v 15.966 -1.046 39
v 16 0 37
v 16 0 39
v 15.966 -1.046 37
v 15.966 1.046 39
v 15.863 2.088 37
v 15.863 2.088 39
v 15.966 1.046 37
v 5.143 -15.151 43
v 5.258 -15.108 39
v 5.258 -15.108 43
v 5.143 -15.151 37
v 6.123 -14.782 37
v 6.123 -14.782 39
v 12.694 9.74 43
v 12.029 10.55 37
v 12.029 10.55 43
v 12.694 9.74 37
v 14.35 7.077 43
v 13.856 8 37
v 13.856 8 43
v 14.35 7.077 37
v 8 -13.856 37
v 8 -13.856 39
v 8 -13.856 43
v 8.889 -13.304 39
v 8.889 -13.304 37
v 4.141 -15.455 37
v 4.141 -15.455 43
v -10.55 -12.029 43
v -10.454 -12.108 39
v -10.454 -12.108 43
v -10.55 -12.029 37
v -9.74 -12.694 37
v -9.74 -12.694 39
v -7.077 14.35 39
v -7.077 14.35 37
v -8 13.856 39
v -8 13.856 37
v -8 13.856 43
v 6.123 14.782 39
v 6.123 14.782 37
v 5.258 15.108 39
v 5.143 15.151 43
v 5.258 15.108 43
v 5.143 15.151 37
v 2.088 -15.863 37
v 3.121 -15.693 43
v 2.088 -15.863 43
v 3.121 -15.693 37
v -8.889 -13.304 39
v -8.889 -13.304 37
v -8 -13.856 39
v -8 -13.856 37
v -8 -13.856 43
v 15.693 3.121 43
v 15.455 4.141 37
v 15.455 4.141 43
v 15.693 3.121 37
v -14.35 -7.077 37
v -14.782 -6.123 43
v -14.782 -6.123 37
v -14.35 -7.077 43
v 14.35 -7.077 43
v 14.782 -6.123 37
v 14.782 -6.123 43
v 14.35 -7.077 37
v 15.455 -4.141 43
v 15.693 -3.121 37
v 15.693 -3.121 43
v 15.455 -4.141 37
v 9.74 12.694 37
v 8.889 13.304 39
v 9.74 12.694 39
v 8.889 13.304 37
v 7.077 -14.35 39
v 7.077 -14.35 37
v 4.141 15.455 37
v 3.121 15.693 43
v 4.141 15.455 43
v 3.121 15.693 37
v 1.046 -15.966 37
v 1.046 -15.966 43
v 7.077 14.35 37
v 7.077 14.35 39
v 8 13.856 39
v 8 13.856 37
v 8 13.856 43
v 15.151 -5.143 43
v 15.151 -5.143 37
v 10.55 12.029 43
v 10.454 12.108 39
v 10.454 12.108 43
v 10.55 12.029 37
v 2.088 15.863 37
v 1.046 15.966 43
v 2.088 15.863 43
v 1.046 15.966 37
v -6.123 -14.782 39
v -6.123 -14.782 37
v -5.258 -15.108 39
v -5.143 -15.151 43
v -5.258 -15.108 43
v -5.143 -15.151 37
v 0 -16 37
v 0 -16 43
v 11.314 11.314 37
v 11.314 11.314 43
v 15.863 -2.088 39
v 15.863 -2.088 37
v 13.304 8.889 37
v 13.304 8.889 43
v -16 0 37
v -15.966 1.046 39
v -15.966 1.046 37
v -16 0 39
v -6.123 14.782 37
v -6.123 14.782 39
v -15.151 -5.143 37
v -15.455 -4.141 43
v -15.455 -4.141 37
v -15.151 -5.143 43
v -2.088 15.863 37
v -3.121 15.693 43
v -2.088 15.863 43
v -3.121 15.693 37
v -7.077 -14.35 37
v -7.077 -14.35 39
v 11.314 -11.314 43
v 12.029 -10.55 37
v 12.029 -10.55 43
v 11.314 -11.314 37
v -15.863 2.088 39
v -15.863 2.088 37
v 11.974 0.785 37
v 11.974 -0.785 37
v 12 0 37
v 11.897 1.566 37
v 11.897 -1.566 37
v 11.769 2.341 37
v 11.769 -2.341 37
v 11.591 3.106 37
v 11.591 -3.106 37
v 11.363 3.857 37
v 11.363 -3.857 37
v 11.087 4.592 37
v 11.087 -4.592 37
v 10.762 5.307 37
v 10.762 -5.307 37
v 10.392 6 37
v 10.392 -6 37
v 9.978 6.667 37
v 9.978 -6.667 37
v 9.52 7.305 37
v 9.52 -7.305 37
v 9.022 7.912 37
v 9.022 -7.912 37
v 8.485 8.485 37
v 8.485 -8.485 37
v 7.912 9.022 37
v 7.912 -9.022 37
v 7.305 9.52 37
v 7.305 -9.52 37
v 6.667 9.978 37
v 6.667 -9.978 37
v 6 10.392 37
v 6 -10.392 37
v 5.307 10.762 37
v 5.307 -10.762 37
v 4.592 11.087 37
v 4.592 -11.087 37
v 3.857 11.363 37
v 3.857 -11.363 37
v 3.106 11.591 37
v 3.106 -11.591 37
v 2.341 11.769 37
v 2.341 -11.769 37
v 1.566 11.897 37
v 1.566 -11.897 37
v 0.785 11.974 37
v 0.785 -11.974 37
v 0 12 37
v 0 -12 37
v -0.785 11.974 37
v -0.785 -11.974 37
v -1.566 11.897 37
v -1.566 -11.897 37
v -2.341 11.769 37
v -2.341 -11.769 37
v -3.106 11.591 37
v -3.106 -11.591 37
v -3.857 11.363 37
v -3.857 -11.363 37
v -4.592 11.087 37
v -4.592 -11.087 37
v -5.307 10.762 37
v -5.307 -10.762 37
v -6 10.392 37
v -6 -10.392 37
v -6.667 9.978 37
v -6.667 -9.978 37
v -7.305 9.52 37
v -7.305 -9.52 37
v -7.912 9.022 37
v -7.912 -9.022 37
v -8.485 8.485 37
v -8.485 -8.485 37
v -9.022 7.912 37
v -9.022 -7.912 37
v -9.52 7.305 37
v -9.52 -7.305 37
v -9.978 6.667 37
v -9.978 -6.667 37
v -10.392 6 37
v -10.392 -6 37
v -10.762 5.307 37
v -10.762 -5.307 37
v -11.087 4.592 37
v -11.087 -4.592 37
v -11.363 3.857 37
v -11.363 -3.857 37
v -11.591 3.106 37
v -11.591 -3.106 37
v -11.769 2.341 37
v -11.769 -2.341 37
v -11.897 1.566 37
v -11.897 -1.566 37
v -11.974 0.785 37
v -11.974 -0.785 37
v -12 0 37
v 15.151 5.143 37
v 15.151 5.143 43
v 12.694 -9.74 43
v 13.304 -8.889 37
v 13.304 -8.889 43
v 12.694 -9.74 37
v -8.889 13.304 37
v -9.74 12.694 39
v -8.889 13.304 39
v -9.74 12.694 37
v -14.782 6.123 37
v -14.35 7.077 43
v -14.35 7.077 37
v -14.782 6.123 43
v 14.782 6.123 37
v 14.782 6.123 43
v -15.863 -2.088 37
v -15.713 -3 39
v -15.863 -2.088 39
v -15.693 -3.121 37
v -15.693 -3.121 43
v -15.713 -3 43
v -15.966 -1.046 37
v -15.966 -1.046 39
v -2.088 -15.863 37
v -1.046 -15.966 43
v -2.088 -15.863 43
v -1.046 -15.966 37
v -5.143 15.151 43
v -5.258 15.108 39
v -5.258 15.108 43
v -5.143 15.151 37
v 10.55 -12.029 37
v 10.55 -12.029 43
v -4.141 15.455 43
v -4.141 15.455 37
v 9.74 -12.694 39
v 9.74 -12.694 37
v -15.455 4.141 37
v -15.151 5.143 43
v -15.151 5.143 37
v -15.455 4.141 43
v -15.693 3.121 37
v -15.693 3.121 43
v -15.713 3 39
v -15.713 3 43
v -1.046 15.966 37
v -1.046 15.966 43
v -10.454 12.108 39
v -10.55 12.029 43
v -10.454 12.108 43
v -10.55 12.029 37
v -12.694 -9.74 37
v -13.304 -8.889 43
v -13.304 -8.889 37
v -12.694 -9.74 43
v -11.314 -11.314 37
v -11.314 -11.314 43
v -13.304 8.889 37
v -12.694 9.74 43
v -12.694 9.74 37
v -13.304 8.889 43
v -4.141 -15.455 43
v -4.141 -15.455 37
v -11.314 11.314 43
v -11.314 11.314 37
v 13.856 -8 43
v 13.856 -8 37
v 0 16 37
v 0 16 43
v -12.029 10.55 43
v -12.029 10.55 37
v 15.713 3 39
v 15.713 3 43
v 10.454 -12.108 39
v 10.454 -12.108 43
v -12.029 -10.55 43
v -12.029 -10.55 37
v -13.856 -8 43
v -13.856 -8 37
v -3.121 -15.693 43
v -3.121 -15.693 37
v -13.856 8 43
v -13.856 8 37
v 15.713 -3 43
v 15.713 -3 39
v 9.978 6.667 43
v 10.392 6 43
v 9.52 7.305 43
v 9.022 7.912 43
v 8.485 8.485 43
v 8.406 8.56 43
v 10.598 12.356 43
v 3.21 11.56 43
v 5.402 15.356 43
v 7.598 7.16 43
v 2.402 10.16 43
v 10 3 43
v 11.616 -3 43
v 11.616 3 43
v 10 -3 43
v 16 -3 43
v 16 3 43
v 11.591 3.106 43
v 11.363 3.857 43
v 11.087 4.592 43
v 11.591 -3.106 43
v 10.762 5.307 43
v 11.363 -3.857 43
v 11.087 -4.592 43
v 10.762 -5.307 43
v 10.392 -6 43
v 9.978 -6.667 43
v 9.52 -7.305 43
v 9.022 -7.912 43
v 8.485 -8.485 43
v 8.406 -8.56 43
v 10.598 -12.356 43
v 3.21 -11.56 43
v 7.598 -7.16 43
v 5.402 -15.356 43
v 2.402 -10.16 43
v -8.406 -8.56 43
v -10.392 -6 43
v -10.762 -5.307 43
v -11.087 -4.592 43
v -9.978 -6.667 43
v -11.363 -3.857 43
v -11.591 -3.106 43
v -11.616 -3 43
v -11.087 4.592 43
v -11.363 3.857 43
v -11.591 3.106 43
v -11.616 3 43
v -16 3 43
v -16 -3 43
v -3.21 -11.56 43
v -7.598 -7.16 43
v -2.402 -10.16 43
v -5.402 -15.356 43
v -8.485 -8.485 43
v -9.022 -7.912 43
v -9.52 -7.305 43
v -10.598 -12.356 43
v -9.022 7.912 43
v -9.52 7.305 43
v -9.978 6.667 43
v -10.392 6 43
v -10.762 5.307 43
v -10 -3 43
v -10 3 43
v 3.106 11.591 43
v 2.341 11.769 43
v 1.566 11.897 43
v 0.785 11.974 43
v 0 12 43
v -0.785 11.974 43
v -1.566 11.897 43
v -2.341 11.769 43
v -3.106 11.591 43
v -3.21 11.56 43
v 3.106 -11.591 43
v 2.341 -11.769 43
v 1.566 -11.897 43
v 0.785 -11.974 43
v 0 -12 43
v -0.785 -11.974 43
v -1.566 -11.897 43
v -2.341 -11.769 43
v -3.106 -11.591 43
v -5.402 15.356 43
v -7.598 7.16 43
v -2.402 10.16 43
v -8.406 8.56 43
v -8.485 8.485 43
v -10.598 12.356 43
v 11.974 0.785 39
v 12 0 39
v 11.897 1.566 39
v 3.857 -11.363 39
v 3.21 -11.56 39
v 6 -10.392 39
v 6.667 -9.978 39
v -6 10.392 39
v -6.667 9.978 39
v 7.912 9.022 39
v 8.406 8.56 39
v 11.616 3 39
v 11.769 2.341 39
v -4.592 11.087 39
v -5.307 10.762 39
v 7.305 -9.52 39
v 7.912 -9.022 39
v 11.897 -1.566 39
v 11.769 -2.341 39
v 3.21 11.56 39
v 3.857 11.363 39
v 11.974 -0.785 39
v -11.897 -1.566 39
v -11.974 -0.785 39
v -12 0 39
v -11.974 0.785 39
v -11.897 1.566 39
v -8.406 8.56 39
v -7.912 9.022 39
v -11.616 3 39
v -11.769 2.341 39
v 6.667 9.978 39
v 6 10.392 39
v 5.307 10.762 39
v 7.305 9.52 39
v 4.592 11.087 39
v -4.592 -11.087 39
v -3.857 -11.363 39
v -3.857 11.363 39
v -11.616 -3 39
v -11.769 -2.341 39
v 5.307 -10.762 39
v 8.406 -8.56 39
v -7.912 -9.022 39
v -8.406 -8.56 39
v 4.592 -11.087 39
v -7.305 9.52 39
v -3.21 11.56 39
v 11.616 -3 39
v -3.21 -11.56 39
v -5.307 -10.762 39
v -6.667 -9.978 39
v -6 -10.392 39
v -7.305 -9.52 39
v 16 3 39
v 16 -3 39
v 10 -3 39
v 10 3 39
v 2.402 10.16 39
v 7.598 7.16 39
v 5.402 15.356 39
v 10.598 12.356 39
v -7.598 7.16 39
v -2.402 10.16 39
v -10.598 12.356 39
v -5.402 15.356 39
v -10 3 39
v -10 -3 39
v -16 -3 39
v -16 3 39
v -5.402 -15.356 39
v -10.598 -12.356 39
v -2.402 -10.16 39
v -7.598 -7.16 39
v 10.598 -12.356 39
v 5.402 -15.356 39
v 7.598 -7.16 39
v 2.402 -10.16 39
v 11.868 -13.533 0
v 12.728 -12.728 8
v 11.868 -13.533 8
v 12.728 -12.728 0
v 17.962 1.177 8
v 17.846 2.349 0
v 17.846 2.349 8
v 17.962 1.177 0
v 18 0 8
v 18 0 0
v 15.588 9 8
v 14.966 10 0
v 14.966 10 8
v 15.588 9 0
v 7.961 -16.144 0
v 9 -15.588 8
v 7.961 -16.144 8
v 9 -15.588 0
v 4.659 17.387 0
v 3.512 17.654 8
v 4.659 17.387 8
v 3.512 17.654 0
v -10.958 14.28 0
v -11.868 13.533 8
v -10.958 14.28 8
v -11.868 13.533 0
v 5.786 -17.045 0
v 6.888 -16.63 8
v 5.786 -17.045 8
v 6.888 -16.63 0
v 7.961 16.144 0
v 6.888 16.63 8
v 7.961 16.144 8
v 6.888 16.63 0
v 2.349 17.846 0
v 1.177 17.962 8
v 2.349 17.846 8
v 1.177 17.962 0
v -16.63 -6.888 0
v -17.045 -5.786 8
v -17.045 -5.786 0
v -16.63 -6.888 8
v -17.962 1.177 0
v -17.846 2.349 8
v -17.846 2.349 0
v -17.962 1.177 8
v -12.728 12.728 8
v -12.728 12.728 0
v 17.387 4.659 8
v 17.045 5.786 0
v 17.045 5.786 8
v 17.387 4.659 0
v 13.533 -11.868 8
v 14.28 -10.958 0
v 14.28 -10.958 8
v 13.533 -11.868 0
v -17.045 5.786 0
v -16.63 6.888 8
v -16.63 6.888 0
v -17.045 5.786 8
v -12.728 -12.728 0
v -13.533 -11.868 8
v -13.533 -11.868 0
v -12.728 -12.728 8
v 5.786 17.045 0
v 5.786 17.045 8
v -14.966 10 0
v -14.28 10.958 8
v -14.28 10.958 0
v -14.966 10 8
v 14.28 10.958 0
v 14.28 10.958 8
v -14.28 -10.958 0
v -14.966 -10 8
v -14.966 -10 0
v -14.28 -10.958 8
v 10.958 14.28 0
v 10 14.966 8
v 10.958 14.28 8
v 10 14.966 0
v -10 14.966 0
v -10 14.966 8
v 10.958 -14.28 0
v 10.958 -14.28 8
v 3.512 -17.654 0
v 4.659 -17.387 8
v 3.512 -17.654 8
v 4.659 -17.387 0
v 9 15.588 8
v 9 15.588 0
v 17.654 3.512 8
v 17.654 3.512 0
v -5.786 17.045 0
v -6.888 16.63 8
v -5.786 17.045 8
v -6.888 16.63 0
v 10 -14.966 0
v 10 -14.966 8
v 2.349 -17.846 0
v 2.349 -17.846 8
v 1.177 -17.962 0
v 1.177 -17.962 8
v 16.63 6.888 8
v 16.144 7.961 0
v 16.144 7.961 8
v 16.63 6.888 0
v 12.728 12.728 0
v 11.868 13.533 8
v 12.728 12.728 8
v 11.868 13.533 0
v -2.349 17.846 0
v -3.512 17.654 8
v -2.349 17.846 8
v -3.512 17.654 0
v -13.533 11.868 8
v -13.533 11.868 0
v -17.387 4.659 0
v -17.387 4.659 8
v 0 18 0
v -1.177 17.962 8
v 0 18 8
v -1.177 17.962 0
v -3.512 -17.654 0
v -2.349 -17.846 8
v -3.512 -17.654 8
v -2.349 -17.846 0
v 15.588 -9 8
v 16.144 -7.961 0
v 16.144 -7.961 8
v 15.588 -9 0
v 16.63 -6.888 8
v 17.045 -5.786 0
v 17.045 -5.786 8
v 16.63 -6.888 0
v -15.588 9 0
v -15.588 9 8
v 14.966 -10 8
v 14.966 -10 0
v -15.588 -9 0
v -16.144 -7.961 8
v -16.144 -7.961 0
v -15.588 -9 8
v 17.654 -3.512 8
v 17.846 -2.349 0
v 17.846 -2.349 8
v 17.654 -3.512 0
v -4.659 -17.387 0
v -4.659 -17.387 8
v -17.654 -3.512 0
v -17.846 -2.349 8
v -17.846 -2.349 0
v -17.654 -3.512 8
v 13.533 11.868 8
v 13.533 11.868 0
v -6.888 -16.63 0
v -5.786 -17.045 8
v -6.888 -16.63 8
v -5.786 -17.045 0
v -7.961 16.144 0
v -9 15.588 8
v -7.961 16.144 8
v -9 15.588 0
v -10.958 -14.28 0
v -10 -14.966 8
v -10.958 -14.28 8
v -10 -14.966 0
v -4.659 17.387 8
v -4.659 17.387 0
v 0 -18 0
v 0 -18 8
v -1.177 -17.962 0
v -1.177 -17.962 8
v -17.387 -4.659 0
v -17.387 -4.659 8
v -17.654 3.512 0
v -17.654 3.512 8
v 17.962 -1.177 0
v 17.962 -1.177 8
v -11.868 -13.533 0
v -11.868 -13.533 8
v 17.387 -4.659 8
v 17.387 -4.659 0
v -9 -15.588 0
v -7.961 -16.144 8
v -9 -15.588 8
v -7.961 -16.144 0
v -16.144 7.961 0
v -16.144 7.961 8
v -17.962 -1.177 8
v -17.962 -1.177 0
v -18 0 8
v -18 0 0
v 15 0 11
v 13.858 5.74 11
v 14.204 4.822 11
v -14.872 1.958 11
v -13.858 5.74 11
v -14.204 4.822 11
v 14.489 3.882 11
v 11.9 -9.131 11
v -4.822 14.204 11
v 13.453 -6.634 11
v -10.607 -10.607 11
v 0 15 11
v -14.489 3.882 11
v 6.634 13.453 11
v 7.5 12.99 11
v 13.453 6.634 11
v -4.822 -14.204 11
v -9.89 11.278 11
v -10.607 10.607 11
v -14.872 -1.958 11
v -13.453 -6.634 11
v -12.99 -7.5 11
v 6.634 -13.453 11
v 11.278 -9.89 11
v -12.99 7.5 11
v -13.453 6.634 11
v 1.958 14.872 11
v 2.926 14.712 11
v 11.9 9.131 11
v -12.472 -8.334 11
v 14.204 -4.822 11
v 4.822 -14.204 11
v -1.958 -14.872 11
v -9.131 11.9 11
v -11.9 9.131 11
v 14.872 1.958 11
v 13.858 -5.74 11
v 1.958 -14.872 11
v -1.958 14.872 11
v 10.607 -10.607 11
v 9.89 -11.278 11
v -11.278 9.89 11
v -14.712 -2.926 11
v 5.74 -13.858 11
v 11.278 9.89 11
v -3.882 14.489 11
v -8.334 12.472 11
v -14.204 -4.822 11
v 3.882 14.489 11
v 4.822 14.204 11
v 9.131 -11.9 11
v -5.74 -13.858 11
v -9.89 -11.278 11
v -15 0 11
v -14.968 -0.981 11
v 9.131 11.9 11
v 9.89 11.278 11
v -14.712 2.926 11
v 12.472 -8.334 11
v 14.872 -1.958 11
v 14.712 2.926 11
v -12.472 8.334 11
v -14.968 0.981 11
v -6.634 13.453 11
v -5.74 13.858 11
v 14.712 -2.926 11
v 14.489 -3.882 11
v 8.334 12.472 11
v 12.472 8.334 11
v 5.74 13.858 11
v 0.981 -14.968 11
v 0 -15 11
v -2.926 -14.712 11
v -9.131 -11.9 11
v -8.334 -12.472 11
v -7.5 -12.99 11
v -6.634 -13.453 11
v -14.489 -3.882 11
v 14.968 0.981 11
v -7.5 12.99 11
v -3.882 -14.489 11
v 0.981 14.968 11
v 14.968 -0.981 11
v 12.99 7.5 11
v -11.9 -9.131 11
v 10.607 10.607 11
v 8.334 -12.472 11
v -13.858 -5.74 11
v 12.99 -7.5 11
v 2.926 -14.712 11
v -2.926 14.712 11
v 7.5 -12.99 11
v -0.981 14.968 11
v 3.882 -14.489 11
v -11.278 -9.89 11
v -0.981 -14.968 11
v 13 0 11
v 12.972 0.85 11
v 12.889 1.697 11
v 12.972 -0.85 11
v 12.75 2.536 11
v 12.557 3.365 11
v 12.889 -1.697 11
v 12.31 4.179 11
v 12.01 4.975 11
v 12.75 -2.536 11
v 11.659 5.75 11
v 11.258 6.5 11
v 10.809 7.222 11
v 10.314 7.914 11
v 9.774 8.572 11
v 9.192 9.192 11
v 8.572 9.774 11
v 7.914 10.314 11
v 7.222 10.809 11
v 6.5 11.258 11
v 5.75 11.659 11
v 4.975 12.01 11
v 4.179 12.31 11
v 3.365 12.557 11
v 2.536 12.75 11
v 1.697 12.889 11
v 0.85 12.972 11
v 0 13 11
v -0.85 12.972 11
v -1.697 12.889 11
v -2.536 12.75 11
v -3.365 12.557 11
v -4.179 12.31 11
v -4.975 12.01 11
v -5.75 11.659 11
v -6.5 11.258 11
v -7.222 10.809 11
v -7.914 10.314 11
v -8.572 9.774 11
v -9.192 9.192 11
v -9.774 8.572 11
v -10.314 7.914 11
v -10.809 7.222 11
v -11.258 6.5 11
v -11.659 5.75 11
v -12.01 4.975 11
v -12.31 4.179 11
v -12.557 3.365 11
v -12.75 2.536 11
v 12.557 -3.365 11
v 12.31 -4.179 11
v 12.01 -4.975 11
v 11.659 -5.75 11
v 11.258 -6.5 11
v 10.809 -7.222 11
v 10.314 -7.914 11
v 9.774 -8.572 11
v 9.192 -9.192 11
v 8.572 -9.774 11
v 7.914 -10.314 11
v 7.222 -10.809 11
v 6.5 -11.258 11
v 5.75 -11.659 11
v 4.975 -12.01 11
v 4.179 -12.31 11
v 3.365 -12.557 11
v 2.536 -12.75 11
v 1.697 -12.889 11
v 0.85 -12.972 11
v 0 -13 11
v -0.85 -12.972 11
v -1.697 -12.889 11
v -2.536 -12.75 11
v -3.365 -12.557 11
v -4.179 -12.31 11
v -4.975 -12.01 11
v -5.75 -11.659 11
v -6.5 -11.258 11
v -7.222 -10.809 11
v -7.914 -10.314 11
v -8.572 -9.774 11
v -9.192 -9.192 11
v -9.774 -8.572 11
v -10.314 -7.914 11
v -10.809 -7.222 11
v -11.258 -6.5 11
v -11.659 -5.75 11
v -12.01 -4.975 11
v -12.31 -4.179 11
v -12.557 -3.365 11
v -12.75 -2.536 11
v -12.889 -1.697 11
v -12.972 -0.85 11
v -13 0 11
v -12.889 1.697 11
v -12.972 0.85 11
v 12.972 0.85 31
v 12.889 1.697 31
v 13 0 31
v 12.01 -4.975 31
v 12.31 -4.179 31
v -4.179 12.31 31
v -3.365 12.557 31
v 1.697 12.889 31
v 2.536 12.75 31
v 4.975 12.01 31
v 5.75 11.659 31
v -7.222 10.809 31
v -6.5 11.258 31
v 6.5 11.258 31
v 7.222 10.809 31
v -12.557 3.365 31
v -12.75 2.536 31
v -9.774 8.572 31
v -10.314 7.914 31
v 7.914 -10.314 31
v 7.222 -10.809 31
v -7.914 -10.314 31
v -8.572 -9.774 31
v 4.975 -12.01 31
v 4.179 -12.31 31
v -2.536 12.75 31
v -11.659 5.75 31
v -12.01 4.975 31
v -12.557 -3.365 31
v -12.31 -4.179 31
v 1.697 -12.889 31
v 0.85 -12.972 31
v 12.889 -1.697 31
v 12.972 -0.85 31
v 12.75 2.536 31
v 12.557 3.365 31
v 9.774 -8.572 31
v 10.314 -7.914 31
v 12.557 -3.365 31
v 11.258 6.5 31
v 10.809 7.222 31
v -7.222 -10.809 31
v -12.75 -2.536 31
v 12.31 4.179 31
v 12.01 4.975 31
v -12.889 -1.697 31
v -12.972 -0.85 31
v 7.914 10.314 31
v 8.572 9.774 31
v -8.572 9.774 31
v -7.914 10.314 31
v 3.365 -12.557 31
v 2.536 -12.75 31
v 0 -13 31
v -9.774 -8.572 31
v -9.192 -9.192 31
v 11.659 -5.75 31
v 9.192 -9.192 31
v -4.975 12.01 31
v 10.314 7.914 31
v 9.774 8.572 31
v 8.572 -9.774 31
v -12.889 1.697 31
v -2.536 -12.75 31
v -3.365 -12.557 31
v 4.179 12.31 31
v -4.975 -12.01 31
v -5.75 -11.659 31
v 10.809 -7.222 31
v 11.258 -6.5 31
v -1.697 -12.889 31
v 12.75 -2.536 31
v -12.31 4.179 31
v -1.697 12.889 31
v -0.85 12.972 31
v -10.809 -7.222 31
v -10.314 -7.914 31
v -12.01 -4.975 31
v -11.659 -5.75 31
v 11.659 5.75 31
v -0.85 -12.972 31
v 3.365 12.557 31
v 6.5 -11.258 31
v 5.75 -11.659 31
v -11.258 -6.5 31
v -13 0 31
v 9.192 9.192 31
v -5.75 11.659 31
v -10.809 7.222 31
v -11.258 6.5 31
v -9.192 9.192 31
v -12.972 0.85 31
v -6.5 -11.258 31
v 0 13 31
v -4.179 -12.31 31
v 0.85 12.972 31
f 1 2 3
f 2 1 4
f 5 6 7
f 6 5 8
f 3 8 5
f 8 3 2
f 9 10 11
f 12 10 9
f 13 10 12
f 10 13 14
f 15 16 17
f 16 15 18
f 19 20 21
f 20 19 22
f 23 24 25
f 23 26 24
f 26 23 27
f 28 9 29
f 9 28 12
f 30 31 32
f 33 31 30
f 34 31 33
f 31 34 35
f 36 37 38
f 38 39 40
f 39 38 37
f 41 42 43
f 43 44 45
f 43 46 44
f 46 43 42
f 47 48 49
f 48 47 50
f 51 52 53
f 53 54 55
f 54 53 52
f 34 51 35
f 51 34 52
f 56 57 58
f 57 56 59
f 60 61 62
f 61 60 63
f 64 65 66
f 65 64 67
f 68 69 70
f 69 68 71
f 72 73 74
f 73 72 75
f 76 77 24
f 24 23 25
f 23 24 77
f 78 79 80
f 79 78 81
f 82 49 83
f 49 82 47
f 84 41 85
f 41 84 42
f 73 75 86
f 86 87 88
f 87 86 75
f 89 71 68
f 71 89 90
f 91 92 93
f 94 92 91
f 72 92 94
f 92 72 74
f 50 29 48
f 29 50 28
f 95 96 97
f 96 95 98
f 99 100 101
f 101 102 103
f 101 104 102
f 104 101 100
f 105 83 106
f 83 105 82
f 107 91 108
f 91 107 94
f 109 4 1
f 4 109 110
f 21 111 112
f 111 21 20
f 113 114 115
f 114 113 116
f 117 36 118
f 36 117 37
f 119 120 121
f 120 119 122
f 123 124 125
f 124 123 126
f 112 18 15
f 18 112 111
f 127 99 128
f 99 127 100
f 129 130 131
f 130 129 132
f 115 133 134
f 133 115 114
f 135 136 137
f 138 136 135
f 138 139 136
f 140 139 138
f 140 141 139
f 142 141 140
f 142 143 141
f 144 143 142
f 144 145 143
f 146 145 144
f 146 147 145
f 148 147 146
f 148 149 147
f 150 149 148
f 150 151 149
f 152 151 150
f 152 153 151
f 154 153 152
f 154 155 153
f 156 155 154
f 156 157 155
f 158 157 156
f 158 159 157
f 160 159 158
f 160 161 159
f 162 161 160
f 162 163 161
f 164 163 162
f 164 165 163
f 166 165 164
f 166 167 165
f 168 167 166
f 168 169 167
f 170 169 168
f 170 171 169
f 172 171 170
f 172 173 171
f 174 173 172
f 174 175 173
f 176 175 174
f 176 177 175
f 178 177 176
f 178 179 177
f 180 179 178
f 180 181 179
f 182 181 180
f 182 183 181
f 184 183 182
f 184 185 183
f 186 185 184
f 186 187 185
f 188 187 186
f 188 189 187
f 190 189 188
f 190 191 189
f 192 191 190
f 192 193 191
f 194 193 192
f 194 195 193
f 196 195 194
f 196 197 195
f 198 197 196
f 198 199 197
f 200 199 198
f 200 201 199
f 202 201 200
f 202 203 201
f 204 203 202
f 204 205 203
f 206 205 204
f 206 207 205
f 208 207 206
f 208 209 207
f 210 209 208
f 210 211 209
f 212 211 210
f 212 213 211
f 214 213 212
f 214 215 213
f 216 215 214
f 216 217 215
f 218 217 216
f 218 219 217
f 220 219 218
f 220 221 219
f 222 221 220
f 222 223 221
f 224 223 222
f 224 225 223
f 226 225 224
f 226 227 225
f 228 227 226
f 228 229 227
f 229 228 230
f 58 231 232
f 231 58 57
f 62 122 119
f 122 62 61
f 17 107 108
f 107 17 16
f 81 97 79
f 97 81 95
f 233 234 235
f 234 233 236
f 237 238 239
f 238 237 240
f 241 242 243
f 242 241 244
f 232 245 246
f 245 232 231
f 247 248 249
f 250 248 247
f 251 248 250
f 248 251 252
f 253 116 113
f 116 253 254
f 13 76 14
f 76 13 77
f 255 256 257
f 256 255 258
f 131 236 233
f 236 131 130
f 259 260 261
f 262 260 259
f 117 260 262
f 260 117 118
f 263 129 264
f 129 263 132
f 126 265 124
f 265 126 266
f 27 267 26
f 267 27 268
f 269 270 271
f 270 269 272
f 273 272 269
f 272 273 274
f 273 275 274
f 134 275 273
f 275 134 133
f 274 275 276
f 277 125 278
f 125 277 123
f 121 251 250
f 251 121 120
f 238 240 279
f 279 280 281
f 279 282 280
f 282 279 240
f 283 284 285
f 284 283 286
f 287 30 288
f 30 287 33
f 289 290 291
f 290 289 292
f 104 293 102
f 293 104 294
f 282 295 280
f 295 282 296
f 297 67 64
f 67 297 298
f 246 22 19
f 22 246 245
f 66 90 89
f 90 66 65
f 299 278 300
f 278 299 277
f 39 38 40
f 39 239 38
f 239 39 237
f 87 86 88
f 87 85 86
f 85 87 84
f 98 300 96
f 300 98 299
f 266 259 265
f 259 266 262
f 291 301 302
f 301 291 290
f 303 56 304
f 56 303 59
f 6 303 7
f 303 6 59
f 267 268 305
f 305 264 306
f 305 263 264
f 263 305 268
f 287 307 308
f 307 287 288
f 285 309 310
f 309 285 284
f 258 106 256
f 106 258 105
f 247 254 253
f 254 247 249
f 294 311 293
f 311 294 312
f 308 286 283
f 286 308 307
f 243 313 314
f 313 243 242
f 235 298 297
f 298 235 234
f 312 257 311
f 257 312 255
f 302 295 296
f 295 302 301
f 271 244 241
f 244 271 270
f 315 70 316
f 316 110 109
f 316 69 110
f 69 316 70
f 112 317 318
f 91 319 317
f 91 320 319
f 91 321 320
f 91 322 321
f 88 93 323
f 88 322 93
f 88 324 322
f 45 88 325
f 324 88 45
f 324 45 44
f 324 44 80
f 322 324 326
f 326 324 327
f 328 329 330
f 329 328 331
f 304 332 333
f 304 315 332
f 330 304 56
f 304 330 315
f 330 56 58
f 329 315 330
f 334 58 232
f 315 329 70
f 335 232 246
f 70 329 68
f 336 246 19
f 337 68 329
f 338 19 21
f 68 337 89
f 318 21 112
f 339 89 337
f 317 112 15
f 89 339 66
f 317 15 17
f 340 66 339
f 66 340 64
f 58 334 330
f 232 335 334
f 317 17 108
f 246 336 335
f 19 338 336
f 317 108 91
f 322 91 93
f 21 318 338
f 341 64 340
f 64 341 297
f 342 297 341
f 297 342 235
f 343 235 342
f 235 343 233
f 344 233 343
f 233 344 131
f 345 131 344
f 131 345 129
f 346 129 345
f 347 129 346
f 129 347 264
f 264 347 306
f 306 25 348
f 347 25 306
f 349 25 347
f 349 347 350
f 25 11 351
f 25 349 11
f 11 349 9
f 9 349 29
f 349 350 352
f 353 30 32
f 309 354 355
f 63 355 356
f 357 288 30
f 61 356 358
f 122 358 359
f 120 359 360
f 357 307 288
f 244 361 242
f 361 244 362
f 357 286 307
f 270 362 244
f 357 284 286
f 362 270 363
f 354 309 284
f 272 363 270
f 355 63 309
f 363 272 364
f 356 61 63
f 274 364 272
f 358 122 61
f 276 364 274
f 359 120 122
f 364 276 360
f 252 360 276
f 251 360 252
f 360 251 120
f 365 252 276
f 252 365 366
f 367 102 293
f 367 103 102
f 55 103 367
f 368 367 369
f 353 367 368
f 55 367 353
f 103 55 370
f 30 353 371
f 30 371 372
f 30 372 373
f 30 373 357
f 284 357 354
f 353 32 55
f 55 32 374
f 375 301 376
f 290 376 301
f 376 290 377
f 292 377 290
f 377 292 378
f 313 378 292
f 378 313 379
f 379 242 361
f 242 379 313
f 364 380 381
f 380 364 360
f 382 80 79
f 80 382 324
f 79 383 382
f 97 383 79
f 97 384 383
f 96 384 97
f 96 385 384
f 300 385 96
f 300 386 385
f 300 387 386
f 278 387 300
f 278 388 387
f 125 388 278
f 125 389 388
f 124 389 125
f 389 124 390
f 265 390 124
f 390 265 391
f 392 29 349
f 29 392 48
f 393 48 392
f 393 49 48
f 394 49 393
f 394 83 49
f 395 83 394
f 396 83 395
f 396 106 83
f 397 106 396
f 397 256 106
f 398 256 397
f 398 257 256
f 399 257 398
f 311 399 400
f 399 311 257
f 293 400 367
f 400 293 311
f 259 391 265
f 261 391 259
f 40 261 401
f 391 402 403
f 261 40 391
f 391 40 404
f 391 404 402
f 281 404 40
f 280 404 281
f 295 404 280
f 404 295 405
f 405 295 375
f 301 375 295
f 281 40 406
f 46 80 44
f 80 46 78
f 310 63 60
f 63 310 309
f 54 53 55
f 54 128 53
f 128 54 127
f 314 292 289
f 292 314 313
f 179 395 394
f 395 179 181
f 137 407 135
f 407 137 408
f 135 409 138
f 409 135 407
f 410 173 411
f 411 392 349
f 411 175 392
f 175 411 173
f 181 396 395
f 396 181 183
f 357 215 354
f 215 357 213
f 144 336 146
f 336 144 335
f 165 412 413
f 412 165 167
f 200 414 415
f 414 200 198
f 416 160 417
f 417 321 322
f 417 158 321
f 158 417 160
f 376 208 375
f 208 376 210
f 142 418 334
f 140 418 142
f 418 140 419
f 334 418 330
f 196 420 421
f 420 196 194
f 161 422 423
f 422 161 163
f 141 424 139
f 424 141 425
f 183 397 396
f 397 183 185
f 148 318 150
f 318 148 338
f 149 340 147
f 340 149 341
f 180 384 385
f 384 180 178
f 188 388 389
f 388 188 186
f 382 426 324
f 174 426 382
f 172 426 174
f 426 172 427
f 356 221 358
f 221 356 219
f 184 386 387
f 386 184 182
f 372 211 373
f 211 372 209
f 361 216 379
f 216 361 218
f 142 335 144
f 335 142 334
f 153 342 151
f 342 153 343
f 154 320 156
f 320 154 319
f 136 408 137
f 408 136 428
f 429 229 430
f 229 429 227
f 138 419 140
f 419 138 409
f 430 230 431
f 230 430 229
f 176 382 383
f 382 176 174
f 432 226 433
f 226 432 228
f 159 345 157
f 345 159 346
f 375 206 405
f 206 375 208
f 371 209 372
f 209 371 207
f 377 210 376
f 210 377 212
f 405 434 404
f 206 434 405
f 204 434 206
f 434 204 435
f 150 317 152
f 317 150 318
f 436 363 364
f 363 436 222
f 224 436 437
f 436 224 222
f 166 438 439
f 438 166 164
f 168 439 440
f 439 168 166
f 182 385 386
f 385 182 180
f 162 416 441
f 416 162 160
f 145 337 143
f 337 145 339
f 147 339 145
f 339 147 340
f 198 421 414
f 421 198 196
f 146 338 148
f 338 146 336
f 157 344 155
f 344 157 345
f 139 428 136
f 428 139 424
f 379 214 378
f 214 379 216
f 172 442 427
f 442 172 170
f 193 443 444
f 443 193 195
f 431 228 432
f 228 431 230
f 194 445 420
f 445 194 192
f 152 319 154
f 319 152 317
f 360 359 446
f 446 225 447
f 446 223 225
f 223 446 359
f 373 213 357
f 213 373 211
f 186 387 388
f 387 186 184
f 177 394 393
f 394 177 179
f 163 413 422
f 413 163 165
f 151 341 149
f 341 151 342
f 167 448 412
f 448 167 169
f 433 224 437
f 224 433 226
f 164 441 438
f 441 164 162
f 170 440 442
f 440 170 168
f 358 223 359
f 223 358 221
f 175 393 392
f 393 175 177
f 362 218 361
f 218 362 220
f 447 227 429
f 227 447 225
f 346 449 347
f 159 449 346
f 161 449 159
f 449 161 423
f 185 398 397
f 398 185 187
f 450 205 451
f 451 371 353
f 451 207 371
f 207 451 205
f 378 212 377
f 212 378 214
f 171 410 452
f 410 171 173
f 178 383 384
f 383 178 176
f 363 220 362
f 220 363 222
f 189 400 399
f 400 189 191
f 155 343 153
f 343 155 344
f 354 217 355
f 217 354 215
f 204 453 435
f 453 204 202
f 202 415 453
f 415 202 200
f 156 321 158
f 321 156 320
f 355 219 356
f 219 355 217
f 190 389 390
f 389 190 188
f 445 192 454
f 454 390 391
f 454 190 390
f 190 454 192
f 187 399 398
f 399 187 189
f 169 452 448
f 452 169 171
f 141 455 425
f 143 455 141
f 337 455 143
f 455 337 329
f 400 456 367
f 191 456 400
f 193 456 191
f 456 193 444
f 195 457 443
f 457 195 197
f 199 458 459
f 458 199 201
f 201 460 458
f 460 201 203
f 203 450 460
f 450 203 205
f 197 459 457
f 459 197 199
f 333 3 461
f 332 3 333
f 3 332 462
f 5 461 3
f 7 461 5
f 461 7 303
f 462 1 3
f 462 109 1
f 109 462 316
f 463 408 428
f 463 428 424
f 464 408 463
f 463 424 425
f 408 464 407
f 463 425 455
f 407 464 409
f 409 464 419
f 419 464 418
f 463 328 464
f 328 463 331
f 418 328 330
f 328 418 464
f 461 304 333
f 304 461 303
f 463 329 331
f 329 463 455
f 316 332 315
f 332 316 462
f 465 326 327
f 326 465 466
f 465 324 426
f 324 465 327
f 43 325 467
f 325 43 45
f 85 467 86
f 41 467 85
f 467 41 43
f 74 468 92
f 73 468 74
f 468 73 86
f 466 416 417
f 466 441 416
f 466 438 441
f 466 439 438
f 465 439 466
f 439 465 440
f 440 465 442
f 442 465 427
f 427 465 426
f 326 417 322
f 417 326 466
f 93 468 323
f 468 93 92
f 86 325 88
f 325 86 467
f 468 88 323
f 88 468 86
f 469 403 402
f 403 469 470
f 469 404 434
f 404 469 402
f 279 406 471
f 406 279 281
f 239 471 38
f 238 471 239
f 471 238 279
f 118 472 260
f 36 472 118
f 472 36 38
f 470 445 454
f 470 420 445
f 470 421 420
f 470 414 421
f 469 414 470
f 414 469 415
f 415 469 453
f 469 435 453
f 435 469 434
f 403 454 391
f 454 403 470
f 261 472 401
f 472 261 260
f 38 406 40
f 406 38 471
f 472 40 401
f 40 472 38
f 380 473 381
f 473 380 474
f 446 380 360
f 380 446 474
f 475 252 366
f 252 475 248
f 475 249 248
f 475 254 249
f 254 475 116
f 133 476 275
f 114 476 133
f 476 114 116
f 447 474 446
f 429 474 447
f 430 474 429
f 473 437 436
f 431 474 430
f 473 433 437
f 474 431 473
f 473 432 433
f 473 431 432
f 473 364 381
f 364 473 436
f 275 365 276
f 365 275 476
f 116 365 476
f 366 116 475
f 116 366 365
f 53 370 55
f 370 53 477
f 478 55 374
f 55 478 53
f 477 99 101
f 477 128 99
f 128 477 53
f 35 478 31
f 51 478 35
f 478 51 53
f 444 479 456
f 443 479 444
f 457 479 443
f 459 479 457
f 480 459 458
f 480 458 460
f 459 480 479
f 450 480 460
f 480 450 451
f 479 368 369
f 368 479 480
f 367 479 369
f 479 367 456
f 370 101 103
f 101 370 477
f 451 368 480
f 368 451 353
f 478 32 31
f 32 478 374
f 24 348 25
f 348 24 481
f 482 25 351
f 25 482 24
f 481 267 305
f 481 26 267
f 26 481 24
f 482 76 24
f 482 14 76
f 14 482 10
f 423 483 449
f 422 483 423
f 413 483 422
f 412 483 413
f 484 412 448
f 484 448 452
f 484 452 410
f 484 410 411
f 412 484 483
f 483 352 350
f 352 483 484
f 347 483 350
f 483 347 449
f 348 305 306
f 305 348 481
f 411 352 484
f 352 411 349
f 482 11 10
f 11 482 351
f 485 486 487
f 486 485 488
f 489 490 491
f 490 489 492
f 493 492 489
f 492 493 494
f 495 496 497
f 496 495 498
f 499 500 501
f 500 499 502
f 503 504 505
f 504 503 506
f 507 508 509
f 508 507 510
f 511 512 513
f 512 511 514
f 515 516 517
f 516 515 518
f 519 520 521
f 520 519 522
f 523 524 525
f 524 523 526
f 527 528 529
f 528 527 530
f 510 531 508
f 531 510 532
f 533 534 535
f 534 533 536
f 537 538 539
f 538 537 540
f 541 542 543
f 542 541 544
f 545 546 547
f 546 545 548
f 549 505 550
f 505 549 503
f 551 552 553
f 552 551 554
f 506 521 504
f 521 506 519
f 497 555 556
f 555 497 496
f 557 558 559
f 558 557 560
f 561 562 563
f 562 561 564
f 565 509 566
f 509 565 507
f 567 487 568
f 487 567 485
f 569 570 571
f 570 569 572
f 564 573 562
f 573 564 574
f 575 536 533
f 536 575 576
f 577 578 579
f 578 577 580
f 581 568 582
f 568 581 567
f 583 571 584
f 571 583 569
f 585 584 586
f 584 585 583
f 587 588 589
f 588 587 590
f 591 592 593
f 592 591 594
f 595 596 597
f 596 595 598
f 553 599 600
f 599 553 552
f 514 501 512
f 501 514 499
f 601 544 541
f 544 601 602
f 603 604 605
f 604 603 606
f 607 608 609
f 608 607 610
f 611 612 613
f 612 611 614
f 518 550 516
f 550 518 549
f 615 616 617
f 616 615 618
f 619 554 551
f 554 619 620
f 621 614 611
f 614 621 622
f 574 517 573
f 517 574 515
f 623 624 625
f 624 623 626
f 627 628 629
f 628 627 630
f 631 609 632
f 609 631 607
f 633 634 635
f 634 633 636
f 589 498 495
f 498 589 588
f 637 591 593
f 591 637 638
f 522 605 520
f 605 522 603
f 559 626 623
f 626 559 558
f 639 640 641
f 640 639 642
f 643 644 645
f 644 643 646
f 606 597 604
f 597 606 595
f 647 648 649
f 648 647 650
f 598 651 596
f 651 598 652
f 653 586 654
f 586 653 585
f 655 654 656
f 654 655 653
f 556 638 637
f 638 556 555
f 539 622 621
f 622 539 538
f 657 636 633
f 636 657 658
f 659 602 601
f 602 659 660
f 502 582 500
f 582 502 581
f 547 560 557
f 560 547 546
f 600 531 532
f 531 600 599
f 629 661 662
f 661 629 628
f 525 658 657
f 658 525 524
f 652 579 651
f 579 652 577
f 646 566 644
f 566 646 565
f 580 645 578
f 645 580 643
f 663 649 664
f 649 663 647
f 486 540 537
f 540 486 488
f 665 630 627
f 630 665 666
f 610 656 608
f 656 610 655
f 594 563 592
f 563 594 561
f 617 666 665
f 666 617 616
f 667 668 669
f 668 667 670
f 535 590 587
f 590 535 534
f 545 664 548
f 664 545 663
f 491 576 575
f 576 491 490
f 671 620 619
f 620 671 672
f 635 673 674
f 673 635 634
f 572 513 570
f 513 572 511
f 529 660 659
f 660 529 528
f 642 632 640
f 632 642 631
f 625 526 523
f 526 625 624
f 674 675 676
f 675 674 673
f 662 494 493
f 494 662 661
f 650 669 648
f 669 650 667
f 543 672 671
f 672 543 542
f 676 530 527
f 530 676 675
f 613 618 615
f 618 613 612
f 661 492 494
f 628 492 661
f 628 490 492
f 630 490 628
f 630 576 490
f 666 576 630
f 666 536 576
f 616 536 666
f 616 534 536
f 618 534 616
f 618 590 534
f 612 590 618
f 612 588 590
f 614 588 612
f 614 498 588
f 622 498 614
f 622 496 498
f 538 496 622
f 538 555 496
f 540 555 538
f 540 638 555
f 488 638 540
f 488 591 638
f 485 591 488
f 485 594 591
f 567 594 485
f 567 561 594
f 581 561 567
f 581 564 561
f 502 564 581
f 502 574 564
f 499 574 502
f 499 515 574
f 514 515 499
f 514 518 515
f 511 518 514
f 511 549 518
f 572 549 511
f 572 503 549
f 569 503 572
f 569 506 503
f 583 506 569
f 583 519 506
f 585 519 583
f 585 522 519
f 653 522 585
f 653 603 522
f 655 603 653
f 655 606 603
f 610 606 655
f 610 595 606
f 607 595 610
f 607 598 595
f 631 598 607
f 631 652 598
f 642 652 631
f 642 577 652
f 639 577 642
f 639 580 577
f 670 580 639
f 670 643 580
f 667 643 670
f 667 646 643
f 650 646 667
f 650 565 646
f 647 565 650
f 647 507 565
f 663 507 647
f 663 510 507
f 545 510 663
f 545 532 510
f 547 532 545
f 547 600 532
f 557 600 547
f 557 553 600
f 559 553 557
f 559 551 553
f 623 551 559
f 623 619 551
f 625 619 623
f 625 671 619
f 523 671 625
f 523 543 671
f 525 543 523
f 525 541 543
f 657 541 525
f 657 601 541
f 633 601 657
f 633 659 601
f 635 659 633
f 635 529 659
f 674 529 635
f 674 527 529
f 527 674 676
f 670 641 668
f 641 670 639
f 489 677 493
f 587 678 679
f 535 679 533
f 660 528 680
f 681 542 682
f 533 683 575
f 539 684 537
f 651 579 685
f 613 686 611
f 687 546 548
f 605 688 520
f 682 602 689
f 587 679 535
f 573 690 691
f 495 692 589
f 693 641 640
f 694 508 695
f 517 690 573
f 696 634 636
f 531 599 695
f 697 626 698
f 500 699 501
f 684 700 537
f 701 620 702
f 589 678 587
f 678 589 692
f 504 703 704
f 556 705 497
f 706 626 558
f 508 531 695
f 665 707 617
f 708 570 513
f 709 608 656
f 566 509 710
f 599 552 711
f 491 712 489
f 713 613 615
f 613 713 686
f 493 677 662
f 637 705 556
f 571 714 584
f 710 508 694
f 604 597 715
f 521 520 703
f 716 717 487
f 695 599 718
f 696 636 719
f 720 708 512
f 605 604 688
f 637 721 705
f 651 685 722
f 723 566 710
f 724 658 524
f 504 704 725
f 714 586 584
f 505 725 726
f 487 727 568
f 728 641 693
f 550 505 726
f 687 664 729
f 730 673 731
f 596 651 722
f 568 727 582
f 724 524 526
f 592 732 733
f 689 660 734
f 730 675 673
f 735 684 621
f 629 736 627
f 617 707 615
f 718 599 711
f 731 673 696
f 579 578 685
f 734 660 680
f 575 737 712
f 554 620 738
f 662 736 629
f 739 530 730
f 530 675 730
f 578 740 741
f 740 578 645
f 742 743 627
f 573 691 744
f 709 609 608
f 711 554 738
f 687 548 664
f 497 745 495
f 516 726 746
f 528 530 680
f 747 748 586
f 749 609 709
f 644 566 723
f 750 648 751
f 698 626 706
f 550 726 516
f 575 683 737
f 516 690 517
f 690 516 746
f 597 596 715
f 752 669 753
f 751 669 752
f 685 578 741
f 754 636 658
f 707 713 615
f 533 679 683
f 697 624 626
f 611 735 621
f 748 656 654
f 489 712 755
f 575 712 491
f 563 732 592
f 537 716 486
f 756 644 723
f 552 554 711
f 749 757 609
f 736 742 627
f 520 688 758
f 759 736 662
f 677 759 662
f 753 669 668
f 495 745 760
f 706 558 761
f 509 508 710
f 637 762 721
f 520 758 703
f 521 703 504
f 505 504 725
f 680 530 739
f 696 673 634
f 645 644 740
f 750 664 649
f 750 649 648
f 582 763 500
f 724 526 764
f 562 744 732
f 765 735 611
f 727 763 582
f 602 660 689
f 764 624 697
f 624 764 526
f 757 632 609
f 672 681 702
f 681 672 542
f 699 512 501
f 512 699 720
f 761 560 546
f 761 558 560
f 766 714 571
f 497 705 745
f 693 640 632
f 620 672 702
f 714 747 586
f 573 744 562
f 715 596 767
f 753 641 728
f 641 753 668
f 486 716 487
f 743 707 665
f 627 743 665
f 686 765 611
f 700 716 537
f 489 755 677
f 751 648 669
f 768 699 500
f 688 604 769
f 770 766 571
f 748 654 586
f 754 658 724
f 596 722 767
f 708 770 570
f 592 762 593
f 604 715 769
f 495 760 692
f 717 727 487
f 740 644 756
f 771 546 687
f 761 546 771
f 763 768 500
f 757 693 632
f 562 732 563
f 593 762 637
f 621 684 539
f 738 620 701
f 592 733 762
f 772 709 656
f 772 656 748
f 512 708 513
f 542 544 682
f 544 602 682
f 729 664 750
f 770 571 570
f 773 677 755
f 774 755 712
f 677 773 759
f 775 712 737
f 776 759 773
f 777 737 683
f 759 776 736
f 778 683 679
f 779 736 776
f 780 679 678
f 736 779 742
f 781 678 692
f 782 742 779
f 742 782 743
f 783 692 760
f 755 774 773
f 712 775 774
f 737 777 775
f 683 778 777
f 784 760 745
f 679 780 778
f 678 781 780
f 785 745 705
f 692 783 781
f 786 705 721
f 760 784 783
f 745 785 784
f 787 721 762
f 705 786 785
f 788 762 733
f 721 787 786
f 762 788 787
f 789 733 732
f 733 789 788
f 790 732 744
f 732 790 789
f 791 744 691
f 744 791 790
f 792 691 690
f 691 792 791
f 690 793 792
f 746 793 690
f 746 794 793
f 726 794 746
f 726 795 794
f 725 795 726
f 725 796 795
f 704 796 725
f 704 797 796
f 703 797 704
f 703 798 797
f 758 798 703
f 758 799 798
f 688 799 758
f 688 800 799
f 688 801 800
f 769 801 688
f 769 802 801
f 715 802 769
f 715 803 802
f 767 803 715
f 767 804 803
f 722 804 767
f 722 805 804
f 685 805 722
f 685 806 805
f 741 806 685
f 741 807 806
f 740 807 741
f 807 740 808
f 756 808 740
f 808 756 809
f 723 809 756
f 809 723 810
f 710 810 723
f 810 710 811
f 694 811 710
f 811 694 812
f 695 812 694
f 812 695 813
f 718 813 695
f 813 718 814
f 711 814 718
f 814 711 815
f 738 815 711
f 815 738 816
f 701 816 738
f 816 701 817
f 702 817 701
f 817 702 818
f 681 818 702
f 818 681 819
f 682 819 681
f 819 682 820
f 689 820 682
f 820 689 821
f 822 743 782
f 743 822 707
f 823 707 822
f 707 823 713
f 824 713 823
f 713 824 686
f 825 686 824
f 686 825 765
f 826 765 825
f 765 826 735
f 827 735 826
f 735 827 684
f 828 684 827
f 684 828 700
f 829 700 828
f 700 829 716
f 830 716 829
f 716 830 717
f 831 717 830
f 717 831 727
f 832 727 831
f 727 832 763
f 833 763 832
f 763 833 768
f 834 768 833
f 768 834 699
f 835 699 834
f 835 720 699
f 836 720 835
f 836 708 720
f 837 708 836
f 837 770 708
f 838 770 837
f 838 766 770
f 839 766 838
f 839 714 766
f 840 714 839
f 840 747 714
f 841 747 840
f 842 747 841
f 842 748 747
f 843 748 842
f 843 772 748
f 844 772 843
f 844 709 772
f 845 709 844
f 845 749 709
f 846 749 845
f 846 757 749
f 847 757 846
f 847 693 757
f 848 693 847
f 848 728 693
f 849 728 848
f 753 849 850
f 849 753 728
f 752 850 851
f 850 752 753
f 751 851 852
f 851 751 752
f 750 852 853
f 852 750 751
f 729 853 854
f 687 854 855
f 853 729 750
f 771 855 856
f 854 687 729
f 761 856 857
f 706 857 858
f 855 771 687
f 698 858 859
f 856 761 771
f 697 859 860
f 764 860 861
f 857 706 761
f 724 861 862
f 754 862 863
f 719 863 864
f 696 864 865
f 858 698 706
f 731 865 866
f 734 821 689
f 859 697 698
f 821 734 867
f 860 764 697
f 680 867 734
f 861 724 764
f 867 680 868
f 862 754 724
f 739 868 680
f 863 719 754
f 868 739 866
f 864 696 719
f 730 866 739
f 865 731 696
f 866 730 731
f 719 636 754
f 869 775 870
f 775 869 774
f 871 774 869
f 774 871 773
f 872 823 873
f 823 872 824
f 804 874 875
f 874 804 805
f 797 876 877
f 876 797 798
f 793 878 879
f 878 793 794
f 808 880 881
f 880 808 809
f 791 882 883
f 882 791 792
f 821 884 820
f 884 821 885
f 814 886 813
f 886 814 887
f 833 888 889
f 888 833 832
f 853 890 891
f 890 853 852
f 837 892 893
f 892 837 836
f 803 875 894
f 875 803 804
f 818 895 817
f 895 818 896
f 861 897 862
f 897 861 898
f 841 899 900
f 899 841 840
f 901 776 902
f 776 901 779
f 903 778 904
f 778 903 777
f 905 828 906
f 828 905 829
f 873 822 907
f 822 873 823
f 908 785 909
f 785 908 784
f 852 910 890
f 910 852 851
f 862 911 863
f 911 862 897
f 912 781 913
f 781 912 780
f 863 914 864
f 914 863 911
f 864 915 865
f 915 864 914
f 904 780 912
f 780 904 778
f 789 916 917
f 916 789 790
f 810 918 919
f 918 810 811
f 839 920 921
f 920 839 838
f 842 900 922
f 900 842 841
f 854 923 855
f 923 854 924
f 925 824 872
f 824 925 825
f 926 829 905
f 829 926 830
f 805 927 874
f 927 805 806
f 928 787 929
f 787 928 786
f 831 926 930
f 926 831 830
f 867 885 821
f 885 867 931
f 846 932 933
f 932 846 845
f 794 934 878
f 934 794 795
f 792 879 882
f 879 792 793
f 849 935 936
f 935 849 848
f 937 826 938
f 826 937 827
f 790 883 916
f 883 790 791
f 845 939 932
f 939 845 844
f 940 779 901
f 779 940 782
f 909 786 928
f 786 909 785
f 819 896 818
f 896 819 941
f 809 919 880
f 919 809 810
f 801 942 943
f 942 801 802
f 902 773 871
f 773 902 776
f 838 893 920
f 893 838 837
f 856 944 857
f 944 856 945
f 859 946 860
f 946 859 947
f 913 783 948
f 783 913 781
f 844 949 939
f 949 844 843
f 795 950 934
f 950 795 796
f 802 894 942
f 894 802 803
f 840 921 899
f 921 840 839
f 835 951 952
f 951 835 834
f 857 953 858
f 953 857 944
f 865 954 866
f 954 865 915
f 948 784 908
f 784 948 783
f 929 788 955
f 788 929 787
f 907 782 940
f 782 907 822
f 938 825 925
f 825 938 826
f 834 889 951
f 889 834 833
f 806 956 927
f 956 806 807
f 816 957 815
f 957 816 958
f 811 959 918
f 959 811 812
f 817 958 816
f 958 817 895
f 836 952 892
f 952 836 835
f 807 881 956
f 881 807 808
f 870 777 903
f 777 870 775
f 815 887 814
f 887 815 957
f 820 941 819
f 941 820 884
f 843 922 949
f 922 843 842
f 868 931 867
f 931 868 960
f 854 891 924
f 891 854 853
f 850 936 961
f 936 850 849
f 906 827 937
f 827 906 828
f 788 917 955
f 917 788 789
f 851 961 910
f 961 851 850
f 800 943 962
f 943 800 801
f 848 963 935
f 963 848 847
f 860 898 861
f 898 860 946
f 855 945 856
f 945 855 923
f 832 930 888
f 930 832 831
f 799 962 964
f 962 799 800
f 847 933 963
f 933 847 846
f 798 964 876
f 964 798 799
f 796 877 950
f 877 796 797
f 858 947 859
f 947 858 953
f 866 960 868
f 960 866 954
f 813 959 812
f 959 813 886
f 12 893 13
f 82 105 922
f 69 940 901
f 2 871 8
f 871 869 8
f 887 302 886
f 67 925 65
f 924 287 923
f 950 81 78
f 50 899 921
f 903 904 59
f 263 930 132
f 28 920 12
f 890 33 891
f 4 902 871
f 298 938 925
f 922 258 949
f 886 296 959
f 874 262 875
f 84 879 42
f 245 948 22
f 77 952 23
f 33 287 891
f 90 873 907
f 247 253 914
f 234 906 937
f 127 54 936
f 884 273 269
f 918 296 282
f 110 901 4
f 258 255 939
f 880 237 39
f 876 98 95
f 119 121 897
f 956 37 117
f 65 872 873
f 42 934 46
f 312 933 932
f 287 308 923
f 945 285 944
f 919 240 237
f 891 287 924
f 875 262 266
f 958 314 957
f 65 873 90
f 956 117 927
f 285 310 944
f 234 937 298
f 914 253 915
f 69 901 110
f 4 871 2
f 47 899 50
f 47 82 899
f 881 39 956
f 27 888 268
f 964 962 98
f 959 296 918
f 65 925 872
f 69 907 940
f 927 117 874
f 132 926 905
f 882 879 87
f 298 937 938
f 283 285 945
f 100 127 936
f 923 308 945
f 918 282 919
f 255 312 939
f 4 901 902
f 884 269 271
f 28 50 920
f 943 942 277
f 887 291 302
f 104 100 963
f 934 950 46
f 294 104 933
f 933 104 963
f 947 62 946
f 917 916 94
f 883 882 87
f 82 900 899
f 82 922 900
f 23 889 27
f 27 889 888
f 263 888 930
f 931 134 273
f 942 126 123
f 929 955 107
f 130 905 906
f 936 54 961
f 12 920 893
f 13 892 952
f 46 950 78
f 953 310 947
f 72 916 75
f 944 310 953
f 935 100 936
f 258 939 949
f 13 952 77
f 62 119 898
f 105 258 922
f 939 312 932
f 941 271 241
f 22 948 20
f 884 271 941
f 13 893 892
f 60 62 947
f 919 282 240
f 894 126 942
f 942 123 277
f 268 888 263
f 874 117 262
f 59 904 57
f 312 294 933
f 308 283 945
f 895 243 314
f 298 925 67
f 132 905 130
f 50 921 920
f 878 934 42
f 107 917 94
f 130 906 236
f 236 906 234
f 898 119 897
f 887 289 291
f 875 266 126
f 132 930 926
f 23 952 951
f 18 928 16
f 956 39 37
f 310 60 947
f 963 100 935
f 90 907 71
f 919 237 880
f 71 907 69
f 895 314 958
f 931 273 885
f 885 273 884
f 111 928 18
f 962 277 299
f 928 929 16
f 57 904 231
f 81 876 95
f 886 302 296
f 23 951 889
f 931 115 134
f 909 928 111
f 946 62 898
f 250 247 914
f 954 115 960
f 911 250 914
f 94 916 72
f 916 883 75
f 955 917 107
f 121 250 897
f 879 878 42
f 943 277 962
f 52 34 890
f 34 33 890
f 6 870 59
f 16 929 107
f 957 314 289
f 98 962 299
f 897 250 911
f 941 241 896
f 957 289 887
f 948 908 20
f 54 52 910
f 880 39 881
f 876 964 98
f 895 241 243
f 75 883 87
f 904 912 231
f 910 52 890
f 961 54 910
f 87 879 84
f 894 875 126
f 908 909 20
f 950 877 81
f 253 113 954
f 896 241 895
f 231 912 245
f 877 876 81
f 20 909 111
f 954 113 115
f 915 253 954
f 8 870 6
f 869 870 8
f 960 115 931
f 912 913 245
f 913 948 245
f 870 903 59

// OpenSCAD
$fn=96;

module rook(){
    // base
    base_h=8;
    base_r=18;
    mid_h=20;
    mid_r=13;
    top_h=6;
    top_r=16;
    crenel_h=6;
    crenel_r=16;
    crenel_count=6;

    union(){
        // base pedestal
        cylinder(h=base_h, r=base_r);
        translate([0,0,base_h]) cylinder(h=3, r1=base_r, r2=mid_r+2);
        // shaft
        translate([0,0,base_h+3]) cylinder(h=mid_h, r=mid_r);
        // top flare
        translate([0,0,base_h+3+mid_h]) cylinder(h=top_h, r1=mid_r, r2=top_r);
        // battlement ring
        translate([0,0,base_h+3+mid_h+top_h]) difference(){
            cylinder(h=crenel_h, r=crenel_r);
            cylinder(h=crenel_h, r=crenel_r-4);
        }
        // crenellations (blocks)
        for(i=[0:crenel_count-1]){
            angle = 360/crenel_count*i;
            translate([0,0,base_h+3+mid_h+top_h+crenel_h-2])
                rotate([0,0,angle])
                    translate([crenel_r-3,0,0])
                        cube([6,6,4], center=true);
        }
    }
}

rook();
